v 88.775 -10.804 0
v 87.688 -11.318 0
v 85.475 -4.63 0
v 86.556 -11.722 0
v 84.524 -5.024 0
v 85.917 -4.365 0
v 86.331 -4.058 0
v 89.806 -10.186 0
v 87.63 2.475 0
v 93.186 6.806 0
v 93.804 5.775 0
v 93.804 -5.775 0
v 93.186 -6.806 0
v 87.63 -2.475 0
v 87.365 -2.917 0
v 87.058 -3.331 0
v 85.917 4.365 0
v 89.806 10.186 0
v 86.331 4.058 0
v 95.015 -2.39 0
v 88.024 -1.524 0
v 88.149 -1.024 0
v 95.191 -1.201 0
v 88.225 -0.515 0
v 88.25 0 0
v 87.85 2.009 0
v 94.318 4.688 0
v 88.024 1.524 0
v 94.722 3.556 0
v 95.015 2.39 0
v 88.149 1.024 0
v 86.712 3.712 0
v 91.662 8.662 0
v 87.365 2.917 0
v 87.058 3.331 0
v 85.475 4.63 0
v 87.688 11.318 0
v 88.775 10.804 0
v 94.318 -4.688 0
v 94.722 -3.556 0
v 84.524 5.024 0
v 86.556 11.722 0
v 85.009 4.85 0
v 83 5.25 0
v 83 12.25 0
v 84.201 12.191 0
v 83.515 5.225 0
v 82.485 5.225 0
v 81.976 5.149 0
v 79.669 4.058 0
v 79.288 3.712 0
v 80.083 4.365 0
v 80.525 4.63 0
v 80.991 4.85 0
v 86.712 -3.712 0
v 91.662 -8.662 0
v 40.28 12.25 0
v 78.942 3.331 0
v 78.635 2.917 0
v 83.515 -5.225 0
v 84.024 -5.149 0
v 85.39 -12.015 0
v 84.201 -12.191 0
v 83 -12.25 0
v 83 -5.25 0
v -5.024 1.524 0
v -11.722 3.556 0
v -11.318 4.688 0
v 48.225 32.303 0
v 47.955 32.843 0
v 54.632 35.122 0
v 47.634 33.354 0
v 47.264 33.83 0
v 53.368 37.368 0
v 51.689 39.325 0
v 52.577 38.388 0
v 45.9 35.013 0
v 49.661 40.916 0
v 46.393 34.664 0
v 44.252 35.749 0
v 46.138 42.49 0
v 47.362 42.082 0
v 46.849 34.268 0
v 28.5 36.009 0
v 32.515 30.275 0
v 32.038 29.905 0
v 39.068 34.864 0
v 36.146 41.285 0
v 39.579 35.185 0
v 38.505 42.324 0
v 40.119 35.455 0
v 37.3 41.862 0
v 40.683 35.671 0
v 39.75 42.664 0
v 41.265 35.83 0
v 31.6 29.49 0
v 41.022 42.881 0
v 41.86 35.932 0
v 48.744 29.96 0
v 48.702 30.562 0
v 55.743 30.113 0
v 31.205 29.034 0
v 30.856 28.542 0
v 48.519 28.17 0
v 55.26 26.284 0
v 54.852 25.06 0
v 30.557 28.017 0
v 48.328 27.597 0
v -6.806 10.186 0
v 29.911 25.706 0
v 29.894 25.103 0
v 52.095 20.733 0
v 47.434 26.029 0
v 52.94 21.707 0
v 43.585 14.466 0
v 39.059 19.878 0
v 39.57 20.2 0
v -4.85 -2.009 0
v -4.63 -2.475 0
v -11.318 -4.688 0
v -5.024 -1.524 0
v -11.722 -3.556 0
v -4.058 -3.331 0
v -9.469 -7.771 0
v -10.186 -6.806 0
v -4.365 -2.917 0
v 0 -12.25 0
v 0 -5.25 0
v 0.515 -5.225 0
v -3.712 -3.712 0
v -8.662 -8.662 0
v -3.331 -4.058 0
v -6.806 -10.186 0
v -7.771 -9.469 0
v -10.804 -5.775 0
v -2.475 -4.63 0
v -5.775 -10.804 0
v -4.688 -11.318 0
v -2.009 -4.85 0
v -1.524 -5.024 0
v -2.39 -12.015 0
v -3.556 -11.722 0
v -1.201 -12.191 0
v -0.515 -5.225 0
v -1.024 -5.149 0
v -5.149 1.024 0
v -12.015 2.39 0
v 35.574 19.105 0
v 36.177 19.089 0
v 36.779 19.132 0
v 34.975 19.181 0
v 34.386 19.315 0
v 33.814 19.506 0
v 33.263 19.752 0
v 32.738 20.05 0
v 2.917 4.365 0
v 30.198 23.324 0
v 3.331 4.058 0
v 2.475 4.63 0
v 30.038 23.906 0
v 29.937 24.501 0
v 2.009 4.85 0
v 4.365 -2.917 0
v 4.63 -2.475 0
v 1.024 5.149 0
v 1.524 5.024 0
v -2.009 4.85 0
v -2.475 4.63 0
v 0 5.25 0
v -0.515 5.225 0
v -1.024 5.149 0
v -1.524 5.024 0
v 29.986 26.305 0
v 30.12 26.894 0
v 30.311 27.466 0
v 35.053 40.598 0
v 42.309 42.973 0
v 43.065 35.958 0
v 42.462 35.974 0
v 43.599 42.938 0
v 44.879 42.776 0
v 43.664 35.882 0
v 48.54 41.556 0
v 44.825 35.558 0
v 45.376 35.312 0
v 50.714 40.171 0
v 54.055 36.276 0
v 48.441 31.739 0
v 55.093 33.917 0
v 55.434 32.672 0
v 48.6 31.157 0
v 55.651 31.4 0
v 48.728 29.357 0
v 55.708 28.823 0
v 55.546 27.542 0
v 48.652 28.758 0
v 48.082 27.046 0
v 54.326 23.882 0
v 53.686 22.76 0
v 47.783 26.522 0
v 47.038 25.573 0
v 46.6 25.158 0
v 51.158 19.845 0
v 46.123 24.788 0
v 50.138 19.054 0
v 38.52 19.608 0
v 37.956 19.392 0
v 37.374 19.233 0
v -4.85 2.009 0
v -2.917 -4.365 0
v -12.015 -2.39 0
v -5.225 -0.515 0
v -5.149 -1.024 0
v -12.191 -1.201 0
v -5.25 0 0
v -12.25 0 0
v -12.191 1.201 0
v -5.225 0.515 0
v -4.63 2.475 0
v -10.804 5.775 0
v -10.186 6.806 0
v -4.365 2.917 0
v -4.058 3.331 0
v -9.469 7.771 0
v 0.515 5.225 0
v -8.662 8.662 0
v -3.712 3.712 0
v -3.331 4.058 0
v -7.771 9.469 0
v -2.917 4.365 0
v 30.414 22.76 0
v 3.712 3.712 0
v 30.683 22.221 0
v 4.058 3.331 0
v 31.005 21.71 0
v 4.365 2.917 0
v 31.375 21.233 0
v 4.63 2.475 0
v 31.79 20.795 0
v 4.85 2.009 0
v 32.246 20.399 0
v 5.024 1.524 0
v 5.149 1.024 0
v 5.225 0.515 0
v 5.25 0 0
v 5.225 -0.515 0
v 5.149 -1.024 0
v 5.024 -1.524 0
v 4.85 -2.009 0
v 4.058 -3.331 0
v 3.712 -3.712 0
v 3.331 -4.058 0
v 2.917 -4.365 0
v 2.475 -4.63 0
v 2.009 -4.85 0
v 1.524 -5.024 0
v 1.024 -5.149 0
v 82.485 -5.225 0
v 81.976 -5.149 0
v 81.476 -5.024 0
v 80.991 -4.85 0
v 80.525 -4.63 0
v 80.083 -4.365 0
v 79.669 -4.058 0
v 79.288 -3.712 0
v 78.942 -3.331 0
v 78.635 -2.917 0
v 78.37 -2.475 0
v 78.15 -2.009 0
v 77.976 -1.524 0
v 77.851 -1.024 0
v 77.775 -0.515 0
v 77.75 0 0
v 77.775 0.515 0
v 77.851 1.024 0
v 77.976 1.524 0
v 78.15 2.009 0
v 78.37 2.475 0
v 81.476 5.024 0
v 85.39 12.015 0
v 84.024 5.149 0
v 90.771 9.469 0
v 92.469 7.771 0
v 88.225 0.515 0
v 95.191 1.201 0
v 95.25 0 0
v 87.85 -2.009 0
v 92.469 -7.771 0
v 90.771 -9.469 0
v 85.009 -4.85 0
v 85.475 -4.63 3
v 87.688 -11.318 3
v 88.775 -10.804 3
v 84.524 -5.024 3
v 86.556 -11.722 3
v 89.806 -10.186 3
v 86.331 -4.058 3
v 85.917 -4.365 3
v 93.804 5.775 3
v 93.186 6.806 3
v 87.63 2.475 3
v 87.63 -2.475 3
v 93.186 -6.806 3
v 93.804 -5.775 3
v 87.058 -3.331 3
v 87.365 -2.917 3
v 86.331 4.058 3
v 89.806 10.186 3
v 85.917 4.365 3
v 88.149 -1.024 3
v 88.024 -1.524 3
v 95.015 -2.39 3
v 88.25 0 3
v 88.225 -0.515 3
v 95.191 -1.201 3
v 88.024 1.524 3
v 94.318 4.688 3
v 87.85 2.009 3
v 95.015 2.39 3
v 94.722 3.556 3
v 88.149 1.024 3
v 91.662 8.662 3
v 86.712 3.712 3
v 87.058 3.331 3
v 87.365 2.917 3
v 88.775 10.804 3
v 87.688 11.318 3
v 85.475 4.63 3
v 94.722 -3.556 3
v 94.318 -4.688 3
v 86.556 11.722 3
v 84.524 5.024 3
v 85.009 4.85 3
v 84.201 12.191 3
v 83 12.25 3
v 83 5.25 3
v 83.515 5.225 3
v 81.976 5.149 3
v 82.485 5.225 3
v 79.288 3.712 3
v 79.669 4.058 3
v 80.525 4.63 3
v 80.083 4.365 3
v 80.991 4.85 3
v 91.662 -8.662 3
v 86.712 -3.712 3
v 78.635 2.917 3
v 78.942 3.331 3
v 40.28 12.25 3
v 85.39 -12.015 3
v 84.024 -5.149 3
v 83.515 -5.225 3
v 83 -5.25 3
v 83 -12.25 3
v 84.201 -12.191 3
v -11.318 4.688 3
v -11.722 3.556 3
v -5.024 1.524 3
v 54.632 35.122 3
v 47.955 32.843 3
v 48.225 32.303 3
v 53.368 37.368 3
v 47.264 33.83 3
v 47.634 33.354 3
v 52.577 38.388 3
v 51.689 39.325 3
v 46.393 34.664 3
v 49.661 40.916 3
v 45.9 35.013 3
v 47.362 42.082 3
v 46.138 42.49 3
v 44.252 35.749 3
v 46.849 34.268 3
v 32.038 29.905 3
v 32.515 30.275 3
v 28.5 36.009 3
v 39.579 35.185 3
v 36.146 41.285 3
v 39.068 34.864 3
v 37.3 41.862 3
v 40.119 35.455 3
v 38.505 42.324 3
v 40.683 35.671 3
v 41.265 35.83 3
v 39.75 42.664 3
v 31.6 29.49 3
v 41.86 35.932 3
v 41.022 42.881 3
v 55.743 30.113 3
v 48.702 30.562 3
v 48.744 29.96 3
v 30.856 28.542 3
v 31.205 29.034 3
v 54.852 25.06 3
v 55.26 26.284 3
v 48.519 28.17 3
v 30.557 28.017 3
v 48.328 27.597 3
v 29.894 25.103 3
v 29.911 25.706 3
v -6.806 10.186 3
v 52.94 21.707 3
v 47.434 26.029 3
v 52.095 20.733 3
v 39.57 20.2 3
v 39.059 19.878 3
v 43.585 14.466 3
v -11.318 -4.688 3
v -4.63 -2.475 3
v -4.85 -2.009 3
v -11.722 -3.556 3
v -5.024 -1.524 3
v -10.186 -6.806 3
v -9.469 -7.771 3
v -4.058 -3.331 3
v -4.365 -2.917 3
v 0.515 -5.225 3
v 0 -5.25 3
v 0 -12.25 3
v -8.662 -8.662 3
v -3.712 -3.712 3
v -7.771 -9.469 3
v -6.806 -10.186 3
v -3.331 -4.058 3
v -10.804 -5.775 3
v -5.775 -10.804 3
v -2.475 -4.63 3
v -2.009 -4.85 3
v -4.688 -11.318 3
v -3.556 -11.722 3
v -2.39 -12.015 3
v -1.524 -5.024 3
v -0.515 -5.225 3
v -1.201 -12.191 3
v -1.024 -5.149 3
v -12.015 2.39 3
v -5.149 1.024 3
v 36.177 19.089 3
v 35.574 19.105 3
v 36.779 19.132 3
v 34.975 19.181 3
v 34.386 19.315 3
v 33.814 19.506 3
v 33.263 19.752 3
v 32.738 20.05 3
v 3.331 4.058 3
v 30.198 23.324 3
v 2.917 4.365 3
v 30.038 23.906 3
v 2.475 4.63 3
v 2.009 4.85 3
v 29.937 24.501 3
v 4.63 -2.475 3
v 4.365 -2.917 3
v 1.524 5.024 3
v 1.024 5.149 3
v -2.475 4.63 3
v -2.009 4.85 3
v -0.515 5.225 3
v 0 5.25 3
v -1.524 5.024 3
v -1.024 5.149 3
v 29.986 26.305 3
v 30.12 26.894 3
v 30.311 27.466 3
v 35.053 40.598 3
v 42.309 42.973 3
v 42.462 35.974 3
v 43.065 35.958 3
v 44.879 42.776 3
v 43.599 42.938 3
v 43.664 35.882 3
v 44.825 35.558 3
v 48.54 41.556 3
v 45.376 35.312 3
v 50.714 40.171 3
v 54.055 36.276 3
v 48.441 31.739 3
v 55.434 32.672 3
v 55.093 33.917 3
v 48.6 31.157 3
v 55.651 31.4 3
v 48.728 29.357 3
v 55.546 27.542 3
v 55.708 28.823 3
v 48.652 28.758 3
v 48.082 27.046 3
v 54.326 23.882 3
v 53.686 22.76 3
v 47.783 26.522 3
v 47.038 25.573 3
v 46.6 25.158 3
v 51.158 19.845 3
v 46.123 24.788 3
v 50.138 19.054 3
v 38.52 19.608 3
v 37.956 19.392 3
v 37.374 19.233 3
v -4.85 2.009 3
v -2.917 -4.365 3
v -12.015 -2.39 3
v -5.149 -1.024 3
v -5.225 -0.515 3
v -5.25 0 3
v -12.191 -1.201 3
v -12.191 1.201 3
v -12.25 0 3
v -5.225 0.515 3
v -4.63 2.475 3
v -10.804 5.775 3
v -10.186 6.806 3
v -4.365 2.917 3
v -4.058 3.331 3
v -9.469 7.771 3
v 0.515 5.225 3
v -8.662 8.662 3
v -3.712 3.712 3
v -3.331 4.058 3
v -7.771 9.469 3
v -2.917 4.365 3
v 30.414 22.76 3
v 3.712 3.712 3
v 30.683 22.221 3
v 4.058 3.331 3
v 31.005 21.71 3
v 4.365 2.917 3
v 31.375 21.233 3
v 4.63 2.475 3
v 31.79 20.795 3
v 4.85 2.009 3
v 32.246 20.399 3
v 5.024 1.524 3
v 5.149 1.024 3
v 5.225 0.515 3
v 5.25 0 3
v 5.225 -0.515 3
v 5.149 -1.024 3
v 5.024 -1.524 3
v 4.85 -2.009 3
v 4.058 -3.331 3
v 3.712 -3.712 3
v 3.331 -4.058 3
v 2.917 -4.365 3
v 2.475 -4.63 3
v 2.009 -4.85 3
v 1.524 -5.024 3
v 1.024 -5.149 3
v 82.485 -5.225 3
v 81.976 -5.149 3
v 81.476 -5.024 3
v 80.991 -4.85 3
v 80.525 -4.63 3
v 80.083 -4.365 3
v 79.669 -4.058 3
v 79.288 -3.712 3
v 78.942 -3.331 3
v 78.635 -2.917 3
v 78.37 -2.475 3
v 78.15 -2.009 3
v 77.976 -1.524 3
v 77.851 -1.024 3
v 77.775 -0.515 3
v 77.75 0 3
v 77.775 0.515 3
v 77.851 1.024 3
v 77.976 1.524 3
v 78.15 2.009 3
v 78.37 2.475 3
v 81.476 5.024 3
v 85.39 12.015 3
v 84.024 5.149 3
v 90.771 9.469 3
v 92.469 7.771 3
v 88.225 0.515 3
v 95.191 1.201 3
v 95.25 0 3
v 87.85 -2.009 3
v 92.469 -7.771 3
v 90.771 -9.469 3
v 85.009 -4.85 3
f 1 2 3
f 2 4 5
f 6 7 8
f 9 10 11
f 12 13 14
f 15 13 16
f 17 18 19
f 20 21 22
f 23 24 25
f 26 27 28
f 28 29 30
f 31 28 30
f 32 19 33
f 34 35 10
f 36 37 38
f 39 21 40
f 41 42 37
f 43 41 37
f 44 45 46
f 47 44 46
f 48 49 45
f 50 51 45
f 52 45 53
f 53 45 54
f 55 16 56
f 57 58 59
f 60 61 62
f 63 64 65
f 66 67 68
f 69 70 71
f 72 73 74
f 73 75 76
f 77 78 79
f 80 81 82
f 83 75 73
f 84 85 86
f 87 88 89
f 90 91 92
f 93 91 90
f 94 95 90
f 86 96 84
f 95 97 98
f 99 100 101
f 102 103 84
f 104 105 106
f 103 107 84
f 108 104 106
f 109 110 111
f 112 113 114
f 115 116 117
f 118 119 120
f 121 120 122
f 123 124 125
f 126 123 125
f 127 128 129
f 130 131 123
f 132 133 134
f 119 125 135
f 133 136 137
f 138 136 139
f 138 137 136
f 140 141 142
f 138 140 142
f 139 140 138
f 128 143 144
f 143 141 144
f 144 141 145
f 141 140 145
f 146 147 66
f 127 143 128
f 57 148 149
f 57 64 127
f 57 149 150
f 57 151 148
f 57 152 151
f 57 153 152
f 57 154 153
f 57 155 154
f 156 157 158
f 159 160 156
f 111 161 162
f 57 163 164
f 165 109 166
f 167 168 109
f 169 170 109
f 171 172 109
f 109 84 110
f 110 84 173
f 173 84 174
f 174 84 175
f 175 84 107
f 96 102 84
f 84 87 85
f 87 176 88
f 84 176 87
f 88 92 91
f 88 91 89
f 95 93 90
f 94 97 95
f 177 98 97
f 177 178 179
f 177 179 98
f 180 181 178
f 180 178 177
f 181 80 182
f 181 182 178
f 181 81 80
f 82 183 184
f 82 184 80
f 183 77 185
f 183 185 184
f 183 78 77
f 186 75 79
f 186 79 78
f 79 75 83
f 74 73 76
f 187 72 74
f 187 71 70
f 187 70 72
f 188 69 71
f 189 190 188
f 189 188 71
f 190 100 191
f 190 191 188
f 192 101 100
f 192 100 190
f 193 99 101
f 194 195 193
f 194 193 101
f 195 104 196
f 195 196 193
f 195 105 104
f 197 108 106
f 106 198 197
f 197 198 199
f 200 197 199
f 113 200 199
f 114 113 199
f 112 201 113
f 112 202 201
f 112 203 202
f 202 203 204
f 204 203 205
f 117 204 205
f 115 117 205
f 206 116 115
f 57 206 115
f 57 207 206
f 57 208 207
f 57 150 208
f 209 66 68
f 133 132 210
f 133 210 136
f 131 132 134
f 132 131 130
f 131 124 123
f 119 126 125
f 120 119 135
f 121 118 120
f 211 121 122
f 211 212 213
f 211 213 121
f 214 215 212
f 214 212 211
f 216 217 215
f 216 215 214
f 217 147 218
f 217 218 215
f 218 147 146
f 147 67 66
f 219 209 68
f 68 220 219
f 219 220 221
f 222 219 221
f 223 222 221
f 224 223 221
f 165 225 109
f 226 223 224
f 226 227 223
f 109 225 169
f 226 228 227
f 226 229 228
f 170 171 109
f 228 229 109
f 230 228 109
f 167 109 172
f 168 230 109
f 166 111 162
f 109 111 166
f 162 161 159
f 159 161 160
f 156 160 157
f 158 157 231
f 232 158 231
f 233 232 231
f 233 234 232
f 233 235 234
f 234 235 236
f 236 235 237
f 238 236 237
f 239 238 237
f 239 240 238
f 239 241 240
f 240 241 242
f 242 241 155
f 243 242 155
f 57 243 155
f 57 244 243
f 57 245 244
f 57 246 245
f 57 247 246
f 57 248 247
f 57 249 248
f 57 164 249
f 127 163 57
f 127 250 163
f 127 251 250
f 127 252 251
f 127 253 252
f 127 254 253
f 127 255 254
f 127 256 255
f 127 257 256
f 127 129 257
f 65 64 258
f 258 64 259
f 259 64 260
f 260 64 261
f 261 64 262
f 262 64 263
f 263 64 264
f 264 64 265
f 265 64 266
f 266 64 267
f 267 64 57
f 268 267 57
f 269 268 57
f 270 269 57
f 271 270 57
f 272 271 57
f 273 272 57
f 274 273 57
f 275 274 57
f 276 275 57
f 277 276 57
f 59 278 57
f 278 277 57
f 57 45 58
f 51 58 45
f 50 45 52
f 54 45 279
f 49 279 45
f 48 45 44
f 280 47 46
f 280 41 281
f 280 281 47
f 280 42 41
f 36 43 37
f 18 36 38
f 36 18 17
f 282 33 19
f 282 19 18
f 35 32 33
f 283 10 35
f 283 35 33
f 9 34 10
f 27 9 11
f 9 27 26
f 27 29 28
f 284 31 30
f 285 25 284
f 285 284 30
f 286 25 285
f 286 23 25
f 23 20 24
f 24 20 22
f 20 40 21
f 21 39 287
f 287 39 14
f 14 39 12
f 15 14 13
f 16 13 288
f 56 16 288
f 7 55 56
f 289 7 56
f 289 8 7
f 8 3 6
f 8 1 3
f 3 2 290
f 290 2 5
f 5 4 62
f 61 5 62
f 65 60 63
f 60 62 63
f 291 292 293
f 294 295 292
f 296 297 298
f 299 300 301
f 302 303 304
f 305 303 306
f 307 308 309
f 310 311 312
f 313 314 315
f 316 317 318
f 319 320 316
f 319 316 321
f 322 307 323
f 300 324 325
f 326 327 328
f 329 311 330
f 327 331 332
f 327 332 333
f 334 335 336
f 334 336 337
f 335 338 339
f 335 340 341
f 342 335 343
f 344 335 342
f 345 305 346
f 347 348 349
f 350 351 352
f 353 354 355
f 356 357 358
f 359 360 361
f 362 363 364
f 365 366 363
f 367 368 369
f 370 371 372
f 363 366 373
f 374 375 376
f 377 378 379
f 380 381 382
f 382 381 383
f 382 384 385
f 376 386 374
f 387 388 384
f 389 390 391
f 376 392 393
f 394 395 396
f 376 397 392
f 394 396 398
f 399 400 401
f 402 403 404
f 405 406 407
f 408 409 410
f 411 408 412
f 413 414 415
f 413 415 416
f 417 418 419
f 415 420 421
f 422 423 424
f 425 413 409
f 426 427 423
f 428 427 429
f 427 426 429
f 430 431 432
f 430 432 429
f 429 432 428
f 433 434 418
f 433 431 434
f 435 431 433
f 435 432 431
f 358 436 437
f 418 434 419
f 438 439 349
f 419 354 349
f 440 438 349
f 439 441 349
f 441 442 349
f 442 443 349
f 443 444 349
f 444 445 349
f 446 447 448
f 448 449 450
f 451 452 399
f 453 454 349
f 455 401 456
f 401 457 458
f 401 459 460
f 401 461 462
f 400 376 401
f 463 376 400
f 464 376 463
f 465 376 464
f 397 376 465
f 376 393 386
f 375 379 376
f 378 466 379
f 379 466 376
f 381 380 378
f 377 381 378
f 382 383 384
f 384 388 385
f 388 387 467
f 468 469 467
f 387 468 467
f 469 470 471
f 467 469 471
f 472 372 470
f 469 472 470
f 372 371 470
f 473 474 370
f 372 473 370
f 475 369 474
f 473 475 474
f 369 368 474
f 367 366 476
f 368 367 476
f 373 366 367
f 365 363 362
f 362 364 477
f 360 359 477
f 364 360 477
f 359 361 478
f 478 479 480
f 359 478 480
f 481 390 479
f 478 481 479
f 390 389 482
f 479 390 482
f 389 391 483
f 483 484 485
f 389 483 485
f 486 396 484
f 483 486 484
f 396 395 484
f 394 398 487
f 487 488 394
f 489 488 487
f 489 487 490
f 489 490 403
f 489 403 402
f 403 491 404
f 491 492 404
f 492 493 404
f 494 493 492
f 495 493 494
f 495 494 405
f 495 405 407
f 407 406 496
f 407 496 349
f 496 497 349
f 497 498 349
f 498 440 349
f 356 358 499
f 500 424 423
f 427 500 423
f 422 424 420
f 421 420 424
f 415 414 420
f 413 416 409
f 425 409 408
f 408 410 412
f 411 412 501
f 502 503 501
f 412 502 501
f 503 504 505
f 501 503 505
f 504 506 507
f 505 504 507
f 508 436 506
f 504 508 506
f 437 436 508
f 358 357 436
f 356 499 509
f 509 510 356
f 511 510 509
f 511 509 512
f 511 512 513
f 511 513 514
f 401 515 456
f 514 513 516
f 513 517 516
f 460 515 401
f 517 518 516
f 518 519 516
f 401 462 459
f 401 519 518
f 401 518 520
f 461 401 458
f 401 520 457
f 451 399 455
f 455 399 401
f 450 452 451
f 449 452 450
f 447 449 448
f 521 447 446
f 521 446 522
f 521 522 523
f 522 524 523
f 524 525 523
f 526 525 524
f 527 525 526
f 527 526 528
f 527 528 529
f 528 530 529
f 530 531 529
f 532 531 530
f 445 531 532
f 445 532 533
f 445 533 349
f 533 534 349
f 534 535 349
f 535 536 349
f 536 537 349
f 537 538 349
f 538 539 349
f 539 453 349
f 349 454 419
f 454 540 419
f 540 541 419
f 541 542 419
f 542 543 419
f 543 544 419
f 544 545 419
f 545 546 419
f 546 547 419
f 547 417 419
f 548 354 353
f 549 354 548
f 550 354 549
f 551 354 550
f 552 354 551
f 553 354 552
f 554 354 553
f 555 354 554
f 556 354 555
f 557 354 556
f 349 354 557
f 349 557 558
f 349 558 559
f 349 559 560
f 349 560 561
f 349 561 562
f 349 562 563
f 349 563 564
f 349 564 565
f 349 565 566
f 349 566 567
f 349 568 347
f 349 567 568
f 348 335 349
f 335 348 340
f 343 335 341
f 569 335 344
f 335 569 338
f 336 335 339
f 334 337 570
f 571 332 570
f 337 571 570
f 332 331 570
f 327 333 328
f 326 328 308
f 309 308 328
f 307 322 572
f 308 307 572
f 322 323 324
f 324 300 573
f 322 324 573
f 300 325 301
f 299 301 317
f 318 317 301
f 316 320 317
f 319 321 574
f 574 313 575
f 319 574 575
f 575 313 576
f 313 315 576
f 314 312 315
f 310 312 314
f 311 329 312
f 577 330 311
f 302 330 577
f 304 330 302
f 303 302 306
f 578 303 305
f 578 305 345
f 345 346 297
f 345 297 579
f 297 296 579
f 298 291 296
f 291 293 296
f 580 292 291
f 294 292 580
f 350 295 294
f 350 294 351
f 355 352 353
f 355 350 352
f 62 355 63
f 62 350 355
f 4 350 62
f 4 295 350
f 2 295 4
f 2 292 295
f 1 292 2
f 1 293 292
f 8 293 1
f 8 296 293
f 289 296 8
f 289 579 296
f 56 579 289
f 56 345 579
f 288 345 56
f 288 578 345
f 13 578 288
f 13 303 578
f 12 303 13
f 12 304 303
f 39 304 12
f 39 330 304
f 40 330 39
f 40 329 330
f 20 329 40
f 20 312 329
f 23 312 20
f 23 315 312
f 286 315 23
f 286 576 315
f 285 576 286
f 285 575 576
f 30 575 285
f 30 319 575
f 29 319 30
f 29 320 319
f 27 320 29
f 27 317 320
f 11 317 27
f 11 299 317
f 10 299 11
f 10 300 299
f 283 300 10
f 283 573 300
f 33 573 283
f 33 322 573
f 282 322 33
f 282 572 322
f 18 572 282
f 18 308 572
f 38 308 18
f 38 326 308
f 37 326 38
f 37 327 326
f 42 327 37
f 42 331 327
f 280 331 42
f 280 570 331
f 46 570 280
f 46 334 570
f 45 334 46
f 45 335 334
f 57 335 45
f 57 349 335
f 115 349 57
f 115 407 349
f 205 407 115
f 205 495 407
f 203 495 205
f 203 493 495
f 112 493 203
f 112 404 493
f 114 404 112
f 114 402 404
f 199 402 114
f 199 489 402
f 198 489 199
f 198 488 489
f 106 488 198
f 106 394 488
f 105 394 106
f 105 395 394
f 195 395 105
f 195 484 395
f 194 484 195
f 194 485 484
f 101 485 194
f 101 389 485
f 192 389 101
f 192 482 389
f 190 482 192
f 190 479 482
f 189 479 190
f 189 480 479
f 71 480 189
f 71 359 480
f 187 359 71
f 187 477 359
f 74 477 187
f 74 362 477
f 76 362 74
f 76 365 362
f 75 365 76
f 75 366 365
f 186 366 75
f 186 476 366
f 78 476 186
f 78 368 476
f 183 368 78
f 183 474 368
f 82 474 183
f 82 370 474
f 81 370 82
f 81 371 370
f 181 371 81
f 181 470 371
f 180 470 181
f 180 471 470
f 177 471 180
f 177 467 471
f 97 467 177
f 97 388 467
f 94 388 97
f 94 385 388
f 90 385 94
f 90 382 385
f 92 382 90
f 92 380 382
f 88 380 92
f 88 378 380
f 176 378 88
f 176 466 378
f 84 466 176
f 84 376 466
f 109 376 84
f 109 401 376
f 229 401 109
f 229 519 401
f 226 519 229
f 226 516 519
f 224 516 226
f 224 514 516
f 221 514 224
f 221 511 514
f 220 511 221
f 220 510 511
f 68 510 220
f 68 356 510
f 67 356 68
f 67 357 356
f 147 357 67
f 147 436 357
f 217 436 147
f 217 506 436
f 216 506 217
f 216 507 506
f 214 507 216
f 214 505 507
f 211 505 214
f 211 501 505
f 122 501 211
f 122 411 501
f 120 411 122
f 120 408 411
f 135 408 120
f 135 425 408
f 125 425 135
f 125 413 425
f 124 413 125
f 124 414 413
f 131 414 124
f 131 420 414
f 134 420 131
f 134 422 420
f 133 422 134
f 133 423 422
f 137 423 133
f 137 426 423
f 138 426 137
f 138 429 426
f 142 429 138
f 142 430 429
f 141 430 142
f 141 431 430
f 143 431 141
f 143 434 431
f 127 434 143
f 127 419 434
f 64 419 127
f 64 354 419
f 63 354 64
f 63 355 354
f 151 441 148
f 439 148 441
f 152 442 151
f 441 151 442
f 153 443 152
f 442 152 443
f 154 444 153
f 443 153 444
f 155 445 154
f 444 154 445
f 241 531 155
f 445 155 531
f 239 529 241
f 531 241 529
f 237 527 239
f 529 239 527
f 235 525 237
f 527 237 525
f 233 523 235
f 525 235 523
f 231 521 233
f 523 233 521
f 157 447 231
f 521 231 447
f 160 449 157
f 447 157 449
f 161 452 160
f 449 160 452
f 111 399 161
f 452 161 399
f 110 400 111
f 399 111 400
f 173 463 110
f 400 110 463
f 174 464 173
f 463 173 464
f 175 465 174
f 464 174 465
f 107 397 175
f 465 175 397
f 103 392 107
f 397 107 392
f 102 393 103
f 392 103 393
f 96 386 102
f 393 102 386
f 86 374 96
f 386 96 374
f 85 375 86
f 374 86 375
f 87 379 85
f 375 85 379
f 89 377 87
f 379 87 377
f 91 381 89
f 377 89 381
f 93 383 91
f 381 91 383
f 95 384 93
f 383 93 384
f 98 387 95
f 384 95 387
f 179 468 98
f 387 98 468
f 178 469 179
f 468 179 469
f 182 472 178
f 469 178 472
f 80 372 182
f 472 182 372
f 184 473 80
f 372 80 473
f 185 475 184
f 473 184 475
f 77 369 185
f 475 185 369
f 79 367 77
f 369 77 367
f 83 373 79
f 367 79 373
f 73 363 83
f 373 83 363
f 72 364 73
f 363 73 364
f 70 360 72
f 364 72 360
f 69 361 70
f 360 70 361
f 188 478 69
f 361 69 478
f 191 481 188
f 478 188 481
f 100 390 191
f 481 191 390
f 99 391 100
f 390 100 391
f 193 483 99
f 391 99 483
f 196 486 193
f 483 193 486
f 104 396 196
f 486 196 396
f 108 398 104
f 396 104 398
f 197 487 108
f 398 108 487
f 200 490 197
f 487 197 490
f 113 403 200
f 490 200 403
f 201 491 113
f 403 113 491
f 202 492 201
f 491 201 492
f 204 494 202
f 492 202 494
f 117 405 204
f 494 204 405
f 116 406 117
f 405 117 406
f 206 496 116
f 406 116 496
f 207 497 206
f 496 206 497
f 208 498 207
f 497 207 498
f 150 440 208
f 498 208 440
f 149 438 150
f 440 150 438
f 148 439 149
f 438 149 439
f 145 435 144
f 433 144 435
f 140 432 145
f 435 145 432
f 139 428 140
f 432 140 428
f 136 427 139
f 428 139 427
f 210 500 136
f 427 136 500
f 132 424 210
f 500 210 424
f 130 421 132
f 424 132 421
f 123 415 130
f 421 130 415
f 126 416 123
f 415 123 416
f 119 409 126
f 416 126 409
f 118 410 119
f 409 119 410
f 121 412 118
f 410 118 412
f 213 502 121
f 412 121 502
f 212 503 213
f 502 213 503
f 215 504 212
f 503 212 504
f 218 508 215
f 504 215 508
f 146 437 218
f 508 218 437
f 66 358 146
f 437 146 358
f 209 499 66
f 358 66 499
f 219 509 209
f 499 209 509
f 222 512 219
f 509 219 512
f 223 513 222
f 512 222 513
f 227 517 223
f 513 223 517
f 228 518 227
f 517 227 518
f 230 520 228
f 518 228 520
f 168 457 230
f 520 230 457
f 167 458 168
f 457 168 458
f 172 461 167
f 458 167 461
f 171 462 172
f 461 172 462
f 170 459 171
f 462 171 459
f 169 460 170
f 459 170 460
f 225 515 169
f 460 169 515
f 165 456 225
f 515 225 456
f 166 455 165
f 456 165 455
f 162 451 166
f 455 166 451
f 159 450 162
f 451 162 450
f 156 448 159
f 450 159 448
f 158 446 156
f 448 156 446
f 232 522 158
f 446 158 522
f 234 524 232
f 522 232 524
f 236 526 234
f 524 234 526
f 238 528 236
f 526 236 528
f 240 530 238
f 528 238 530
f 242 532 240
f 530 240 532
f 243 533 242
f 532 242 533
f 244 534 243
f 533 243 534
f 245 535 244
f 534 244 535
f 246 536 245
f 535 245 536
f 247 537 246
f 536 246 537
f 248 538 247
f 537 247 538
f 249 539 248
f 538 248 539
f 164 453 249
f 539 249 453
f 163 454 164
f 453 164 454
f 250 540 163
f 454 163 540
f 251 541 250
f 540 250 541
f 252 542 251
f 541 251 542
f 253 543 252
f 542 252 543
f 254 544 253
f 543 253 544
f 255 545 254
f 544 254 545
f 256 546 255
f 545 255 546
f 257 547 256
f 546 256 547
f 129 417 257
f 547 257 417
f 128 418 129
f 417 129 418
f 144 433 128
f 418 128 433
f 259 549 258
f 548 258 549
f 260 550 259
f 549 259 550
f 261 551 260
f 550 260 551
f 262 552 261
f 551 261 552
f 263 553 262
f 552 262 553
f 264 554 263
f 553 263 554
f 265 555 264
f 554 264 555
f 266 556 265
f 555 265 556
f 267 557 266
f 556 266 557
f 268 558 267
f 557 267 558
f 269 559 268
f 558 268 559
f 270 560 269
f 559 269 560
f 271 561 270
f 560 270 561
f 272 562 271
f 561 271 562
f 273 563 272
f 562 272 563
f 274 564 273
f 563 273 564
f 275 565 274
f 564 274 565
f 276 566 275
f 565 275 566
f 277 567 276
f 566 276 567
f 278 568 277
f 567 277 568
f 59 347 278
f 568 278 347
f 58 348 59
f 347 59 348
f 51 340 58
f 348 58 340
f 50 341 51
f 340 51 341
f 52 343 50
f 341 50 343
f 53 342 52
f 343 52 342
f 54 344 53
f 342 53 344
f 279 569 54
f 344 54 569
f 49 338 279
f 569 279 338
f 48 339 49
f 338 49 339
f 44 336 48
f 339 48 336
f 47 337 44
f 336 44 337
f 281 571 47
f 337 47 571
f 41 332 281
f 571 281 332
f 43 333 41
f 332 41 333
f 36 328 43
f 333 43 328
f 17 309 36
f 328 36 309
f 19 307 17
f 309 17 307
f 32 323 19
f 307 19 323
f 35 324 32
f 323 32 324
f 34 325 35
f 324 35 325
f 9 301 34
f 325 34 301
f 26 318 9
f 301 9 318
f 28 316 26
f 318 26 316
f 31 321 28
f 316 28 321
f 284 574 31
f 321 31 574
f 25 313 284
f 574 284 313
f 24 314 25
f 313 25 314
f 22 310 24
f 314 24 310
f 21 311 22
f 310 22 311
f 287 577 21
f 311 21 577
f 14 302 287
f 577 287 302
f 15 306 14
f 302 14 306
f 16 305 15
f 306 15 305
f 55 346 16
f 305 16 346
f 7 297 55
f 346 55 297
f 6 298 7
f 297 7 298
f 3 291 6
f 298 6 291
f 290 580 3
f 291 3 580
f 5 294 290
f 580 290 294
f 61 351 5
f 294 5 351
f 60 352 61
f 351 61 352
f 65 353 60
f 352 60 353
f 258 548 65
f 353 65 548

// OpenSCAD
// Bracket for the LJ12A3-4-Z/BX inductive sensor on the front brake disc.
//
// A flat plate parallel to the disc, held by one brake caliper bolt and kept
// from turning by a second hole (the other caliper bolt) or by a tab against
// the fork leg. The sensor goes through a slot, so its radius can be set over
// the bolt heads of the disc; its two M12 nuts set the 1-2 mm gap.
//
//   openscad -D 'out="3d"' -o sensor-bracket.stl sensor-bracket.scad   # printed test piece
//   openscad -D 'out="2d"' -o sensor-bracket.dxf sensor-bracket.scad   # outline for aluminium
//
// SAFETY: under a brake caliper bolt only the 3 mm aluminium plate is
// allowed. A printed part creeps under the bolt load and the bolt loosens:
// print it only to check the fit. All dimensions marked [DA VERIFICARE] come
// from the measurements on the bike (docs/ricerca/rilievi-sulla-moto.md).

out = "3d";

t = 3.0;               // plate thickness (aluminium 5754/6082)
bolt_d = 10.5;         // caliper bolt clearance hole (M10) [DA VERIFICARE]
second_bolt = true;    // use the second caliper bolt against rotation
bolt_pitch = 83.0;     // distance between the caliper bolts [DA VERIFICARE]
sensor_d = 12.3;       // M12x1 sensor body
reach = 48.0;          // first bolt to sensor axis, at the middle of the slot [DA VERIFICARE]
angle = 35.0;          // direction of the sensor arm from the bolt line [DA VERIFICARE]
slot = 8.0;            // radial adjustment of the sensor (+/- slot/2)
margin = 7.0;          // material around the holes

$fn = 64;

function polar(r, a) = [r * cos(a), r * sin(a)];

sensor_at = polar(reach, angle);
bolt2_at = [bolt_pitch, 0];

module outline() {
    difference() {
        union() {
            hull() {
                circle(d = bolt_d + 2 * margin);
                translate(sensor_at) rotate(angle) hull()
                    for (s = [-1, 1]) translate([s * slot / 2, 0]) circle(d = sensor_d + 2 * margin);
            }
            if (second_bolt) hull() {
                circle(d = bolt_d + 2 * margin);
                translate(bolt2_at) circle(d = bolt_d + 2 * margin);
            }
        }
        circle(d = bolt_d);
        if (second_bolt) translate(bolt2_at) circle(d = bolt_d);
        translate(sensor_at) rotate(angle) hull()
            for (s = [-1, 1]) translate([s * slot / 2, 0]) circle(d = sensor_d);
    }
}

if (out == "2d") outline();
else linear_extrude(t) outline();
